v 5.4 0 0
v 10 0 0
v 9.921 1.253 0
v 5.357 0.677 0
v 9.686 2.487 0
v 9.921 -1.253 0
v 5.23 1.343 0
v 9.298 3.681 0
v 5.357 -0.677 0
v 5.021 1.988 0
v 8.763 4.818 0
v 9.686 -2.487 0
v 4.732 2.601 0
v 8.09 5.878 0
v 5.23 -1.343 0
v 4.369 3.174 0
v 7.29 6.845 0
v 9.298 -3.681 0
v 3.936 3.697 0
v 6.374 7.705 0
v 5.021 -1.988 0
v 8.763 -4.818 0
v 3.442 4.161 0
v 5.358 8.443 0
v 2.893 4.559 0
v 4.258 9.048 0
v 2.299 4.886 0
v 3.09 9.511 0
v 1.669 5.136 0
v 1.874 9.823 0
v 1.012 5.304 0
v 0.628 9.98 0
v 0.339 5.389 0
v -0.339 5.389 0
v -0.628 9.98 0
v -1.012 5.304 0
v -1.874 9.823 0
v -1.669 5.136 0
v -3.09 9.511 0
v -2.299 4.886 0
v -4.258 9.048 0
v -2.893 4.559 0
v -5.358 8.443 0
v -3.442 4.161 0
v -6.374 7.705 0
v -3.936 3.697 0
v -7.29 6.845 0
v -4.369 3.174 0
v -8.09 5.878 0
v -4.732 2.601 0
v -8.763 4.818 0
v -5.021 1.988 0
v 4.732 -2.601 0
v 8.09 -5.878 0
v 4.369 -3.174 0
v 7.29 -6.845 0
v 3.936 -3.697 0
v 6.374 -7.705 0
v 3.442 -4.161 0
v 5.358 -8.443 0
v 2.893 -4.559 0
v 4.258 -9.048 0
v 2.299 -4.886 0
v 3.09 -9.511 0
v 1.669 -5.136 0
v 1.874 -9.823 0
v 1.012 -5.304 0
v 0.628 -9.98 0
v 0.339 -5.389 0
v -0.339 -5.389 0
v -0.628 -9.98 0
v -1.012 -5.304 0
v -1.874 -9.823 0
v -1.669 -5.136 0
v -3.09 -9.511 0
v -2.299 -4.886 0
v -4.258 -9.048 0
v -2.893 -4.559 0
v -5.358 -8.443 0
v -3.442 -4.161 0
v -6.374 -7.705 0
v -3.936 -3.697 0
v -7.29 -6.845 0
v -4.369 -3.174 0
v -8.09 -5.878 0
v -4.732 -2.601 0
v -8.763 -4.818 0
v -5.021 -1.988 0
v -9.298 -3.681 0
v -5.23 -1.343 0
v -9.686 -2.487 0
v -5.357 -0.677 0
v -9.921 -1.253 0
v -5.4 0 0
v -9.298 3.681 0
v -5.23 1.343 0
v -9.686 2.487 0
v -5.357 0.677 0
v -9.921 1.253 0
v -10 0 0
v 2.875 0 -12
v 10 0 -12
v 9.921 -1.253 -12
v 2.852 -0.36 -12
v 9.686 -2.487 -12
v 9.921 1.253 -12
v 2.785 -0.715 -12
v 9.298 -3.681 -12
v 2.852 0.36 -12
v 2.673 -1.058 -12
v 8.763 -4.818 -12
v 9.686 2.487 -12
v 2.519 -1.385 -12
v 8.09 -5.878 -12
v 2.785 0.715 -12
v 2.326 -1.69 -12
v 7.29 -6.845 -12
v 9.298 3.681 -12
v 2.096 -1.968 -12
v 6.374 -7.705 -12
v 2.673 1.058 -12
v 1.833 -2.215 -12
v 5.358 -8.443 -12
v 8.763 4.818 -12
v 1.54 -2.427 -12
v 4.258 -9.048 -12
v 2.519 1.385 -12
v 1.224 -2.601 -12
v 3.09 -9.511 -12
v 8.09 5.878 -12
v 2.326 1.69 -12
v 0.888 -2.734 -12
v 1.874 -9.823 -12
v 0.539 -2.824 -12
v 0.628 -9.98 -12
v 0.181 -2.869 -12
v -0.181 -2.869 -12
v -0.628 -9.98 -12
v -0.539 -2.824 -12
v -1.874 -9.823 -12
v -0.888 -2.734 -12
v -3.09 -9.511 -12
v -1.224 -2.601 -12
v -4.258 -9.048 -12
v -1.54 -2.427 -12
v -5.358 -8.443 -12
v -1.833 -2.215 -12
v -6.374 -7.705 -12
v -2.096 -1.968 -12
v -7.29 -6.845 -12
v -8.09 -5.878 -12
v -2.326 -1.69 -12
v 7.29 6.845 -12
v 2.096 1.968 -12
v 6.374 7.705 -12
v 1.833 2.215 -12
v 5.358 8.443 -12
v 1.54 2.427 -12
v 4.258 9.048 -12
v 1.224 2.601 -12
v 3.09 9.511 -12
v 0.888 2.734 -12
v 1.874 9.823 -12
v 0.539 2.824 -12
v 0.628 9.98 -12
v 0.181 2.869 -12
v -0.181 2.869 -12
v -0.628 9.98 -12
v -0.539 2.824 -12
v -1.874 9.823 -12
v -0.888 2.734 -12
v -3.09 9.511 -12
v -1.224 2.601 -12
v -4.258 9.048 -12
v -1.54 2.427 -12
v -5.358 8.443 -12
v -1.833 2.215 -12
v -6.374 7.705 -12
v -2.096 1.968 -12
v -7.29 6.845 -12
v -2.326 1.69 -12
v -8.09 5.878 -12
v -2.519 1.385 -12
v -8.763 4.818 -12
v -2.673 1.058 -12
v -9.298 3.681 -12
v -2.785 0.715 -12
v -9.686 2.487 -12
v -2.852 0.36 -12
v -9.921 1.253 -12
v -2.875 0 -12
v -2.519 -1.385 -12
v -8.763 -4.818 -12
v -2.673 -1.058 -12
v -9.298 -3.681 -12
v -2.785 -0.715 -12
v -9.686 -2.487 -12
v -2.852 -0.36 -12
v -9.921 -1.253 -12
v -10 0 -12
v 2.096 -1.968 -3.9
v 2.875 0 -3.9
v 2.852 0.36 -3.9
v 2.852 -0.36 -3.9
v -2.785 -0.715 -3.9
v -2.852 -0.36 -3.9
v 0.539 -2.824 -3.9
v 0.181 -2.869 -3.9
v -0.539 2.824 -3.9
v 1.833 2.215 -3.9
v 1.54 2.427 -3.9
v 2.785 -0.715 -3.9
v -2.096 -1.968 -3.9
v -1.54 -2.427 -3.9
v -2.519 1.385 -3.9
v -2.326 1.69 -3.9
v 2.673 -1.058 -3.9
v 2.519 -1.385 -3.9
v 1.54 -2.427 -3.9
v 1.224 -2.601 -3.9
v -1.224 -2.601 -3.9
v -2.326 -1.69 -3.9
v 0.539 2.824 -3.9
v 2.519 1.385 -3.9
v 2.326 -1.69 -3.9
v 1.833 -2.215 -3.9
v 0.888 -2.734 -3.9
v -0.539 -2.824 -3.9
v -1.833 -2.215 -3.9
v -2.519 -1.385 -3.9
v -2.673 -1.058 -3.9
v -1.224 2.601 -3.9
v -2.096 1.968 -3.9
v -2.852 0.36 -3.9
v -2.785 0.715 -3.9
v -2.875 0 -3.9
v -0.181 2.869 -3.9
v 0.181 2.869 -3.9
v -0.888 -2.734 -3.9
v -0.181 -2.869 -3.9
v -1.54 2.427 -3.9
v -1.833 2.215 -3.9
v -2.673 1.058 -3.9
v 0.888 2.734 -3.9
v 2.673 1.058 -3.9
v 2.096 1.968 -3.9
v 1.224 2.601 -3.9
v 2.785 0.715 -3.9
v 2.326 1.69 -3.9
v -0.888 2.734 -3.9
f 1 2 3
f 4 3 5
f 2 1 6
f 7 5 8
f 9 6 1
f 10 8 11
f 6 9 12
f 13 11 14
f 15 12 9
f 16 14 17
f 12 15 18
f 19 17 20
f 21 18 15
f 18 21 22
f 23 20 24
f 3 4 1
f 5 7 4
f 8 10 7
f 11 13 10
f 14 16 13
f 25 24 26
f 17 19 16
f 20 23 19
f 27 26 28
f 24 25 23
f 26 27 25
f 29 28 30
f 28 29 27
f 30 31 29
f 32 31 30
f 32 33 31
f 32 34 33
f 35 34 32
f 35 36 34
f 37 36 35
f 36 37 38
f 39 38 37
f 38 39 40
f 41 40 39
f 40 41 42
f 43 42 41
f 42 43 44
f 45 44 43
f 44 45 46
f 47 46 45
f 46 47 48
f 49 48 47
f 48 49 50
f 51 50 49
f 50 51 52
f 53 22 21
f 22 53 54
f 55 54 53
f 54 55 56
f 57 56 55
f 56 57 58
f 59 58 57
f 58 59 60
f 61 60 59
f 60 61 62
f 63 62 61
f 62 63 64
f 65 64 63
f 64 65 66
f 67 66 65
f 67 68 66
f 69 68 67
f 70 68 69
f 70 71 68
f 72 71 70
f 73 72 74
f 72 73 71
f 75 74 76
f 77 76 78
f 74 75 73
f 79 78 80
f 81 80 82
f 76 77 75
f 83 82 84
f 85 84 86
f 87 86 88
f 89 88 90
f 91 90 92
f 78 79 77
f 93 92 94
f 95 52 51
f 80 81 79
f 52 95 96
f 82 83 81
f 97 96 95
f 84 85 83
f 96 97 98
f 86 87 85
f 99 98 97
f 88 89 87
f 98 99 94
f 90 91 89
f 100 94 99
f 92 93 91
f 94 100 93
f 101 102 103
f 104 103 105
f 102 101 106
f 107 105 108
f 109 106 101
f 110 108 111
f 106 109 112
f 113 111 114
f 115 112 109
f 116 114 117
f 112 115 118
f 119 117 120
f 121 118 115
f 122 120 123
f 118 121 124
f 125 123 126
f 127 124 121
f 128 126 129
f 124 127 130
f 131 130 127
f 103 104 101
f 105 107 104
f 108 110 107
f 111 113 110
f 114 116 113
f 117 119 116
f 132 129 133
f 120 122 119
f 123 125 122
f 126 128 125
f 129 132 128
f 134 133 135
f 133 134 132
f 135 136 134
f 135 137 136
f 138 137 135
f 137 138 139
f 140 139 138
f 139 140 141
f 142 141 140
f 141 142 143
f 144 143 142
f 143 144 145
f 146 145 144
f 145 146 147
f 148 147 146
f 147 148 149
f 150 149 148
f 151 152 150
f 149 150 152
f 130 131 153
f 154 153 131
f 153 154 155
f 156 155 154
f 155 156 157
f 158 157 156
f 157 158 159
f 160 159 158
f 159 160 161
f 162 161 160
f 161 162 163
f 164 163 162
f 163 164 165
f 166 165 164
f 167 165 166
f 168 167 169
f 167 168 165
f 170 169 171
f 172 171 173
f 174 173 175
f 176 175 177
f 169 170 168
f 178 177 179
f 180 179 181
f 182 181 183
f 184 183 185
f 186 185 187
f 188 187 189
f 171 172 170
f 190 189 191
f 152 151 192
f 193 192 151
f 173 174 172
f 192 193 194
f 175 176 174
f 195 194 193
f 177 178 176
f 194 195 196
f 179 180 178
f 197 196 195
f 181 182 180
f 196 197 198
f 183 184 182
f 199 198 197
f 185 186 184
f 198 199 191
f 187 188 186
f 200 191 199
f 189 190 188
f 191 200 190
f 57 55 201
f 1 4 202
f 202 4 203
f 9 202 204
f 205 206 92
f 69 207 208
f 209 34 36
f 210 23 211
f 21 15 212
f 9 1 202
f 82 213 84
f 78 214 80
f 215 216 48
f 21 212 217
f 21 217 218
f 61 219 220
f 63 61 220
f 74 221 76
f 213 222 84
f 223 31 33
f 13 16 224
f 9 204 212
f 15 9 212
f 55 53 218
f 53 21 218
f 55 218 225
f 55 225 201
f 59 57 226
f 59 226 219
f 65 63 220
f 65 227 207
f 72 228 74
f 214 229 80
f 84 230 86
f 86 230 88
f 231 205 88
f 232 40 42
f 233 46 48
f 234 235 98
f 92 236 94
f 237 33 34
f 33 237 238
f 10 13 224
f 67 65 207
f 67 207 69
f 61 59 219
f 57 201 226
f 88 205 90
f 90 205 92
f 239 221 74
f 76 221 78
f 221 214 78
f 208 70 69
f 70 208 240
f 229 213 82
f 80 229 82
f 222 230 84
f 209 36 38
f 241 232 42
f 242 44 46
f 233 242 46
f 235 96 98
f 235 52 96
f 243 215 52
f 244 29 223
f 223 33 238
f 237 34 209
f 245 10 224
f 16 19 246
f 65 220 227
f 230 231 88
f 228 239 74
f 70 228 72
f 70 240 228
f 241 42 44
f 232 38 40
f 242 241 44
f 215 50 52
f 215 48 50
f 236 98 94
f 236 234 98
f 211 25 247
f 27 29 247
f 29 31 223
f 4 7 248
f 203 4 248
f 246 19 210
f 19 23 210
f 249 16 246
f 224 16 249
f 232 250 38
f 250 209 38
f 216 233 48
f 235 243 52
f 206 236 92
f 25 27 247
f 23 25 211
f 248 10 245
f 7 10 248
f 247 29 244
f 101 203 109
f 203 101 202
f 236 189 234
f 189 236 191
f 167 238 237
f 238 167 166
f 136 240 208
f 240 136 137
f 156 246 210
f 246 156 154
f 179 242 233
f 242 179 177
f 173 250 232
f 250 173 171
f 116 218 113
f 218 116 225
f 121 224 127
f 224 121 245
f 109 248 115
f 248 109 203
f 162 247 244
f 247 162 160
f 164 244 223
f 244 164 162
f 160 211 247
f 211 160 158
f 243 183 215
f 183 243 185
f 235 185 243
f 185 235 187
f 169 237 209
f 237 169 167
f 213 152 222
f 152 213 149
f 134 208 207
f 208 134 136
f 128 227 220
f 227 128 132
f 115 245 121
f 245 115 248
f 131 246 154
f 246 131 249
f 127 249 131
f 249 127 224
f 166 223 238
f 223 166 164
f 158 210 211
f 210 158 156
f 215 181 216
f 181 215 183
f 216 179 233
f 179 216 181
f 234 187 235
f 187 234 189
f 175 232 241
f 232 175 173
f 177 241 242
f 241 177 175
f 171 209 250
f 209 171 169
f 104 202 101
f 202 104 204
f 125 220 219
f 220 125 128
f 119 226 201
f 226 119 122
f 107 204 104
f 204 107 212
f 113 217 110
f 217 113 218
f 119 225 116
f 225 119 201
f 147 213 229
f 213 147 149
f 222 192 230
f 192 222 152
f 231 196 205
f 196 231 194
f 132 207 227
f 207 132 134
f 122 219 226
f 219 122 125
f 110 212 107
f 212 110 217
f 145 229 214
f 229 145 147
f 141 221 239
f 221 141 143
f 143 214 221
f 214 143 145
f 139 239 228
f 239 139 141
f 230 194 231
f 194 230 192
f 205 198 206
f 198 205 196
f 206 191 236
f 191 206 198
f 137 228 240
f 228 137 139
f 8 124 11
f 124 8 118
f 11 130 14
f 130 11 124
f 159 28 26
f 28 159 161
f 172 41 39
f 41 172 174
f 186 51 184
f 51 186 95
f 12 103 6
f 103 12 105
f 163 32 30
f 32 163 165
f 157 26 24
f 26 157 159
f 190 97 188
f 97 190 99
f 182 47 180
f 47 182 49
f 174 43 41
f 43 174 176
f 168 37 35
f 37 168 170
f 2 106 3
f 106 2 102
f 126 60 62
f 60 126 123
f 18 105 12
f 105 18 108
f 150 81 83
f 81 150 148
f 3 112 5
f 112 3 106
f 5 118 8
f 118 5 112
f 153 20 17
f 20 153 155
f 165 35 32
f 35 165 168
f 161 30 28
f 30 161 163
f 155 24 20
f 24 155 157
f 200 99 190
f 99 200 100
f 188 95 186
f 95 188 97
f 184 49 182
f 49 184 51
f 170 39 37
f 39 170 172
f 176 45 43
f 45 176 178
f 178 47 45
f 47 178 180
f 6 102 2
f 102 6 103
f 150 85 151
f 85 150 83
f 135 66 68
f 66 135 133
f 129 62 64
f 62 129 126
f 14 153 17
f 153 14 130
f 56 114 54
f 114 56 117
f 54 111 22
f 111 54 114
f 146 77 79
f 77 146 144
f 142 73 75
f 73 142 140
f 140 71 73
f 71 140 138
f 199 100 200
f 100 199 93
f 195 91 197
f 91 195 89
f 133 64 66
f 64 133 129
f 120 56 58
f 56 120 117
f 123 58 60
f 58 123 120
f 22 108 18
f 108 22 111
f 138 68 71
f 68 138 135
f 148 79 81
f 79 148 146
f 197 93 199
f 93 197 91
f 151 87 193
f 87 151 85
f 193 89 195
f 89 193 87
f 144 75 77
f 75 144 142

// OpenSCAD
$fn = 50;


difference() {
	union() {
		translate(v = [0, 0, -12.0000000000]) {
			cylinder(h = 12, r = 10.0000000000);
		}
		cylinder(h = 0, r = 19.0000000000);
	}
	union() {
		translate(v = [0, 0, 0]) {
			rotate(a = [0, 0, 0]) {
				difference() {
					union() {
						#translate(v = [0, 0, -12.0000000000]) {
							cylinder(h = 12, r = 2.6000000000);
						}
						#translate(v = [0, 0, -3.9000000000]) {
							cylinder(h = 3.9000000000, r = 10.0000000000, r1 = 2.8750000000, r2 = 5.4000000000);
						}
						#translate(v = [0, 0, -12.0000000000]) {
							cylinder(h = 12, r = 2.8750000000);
						}
						#translate(v = [0, 0, -12.0000000000]) {
							cylinder(h = 12, r = 2.6000000000);
						}
					}
					union();
				}
			}
		}
	}
}
